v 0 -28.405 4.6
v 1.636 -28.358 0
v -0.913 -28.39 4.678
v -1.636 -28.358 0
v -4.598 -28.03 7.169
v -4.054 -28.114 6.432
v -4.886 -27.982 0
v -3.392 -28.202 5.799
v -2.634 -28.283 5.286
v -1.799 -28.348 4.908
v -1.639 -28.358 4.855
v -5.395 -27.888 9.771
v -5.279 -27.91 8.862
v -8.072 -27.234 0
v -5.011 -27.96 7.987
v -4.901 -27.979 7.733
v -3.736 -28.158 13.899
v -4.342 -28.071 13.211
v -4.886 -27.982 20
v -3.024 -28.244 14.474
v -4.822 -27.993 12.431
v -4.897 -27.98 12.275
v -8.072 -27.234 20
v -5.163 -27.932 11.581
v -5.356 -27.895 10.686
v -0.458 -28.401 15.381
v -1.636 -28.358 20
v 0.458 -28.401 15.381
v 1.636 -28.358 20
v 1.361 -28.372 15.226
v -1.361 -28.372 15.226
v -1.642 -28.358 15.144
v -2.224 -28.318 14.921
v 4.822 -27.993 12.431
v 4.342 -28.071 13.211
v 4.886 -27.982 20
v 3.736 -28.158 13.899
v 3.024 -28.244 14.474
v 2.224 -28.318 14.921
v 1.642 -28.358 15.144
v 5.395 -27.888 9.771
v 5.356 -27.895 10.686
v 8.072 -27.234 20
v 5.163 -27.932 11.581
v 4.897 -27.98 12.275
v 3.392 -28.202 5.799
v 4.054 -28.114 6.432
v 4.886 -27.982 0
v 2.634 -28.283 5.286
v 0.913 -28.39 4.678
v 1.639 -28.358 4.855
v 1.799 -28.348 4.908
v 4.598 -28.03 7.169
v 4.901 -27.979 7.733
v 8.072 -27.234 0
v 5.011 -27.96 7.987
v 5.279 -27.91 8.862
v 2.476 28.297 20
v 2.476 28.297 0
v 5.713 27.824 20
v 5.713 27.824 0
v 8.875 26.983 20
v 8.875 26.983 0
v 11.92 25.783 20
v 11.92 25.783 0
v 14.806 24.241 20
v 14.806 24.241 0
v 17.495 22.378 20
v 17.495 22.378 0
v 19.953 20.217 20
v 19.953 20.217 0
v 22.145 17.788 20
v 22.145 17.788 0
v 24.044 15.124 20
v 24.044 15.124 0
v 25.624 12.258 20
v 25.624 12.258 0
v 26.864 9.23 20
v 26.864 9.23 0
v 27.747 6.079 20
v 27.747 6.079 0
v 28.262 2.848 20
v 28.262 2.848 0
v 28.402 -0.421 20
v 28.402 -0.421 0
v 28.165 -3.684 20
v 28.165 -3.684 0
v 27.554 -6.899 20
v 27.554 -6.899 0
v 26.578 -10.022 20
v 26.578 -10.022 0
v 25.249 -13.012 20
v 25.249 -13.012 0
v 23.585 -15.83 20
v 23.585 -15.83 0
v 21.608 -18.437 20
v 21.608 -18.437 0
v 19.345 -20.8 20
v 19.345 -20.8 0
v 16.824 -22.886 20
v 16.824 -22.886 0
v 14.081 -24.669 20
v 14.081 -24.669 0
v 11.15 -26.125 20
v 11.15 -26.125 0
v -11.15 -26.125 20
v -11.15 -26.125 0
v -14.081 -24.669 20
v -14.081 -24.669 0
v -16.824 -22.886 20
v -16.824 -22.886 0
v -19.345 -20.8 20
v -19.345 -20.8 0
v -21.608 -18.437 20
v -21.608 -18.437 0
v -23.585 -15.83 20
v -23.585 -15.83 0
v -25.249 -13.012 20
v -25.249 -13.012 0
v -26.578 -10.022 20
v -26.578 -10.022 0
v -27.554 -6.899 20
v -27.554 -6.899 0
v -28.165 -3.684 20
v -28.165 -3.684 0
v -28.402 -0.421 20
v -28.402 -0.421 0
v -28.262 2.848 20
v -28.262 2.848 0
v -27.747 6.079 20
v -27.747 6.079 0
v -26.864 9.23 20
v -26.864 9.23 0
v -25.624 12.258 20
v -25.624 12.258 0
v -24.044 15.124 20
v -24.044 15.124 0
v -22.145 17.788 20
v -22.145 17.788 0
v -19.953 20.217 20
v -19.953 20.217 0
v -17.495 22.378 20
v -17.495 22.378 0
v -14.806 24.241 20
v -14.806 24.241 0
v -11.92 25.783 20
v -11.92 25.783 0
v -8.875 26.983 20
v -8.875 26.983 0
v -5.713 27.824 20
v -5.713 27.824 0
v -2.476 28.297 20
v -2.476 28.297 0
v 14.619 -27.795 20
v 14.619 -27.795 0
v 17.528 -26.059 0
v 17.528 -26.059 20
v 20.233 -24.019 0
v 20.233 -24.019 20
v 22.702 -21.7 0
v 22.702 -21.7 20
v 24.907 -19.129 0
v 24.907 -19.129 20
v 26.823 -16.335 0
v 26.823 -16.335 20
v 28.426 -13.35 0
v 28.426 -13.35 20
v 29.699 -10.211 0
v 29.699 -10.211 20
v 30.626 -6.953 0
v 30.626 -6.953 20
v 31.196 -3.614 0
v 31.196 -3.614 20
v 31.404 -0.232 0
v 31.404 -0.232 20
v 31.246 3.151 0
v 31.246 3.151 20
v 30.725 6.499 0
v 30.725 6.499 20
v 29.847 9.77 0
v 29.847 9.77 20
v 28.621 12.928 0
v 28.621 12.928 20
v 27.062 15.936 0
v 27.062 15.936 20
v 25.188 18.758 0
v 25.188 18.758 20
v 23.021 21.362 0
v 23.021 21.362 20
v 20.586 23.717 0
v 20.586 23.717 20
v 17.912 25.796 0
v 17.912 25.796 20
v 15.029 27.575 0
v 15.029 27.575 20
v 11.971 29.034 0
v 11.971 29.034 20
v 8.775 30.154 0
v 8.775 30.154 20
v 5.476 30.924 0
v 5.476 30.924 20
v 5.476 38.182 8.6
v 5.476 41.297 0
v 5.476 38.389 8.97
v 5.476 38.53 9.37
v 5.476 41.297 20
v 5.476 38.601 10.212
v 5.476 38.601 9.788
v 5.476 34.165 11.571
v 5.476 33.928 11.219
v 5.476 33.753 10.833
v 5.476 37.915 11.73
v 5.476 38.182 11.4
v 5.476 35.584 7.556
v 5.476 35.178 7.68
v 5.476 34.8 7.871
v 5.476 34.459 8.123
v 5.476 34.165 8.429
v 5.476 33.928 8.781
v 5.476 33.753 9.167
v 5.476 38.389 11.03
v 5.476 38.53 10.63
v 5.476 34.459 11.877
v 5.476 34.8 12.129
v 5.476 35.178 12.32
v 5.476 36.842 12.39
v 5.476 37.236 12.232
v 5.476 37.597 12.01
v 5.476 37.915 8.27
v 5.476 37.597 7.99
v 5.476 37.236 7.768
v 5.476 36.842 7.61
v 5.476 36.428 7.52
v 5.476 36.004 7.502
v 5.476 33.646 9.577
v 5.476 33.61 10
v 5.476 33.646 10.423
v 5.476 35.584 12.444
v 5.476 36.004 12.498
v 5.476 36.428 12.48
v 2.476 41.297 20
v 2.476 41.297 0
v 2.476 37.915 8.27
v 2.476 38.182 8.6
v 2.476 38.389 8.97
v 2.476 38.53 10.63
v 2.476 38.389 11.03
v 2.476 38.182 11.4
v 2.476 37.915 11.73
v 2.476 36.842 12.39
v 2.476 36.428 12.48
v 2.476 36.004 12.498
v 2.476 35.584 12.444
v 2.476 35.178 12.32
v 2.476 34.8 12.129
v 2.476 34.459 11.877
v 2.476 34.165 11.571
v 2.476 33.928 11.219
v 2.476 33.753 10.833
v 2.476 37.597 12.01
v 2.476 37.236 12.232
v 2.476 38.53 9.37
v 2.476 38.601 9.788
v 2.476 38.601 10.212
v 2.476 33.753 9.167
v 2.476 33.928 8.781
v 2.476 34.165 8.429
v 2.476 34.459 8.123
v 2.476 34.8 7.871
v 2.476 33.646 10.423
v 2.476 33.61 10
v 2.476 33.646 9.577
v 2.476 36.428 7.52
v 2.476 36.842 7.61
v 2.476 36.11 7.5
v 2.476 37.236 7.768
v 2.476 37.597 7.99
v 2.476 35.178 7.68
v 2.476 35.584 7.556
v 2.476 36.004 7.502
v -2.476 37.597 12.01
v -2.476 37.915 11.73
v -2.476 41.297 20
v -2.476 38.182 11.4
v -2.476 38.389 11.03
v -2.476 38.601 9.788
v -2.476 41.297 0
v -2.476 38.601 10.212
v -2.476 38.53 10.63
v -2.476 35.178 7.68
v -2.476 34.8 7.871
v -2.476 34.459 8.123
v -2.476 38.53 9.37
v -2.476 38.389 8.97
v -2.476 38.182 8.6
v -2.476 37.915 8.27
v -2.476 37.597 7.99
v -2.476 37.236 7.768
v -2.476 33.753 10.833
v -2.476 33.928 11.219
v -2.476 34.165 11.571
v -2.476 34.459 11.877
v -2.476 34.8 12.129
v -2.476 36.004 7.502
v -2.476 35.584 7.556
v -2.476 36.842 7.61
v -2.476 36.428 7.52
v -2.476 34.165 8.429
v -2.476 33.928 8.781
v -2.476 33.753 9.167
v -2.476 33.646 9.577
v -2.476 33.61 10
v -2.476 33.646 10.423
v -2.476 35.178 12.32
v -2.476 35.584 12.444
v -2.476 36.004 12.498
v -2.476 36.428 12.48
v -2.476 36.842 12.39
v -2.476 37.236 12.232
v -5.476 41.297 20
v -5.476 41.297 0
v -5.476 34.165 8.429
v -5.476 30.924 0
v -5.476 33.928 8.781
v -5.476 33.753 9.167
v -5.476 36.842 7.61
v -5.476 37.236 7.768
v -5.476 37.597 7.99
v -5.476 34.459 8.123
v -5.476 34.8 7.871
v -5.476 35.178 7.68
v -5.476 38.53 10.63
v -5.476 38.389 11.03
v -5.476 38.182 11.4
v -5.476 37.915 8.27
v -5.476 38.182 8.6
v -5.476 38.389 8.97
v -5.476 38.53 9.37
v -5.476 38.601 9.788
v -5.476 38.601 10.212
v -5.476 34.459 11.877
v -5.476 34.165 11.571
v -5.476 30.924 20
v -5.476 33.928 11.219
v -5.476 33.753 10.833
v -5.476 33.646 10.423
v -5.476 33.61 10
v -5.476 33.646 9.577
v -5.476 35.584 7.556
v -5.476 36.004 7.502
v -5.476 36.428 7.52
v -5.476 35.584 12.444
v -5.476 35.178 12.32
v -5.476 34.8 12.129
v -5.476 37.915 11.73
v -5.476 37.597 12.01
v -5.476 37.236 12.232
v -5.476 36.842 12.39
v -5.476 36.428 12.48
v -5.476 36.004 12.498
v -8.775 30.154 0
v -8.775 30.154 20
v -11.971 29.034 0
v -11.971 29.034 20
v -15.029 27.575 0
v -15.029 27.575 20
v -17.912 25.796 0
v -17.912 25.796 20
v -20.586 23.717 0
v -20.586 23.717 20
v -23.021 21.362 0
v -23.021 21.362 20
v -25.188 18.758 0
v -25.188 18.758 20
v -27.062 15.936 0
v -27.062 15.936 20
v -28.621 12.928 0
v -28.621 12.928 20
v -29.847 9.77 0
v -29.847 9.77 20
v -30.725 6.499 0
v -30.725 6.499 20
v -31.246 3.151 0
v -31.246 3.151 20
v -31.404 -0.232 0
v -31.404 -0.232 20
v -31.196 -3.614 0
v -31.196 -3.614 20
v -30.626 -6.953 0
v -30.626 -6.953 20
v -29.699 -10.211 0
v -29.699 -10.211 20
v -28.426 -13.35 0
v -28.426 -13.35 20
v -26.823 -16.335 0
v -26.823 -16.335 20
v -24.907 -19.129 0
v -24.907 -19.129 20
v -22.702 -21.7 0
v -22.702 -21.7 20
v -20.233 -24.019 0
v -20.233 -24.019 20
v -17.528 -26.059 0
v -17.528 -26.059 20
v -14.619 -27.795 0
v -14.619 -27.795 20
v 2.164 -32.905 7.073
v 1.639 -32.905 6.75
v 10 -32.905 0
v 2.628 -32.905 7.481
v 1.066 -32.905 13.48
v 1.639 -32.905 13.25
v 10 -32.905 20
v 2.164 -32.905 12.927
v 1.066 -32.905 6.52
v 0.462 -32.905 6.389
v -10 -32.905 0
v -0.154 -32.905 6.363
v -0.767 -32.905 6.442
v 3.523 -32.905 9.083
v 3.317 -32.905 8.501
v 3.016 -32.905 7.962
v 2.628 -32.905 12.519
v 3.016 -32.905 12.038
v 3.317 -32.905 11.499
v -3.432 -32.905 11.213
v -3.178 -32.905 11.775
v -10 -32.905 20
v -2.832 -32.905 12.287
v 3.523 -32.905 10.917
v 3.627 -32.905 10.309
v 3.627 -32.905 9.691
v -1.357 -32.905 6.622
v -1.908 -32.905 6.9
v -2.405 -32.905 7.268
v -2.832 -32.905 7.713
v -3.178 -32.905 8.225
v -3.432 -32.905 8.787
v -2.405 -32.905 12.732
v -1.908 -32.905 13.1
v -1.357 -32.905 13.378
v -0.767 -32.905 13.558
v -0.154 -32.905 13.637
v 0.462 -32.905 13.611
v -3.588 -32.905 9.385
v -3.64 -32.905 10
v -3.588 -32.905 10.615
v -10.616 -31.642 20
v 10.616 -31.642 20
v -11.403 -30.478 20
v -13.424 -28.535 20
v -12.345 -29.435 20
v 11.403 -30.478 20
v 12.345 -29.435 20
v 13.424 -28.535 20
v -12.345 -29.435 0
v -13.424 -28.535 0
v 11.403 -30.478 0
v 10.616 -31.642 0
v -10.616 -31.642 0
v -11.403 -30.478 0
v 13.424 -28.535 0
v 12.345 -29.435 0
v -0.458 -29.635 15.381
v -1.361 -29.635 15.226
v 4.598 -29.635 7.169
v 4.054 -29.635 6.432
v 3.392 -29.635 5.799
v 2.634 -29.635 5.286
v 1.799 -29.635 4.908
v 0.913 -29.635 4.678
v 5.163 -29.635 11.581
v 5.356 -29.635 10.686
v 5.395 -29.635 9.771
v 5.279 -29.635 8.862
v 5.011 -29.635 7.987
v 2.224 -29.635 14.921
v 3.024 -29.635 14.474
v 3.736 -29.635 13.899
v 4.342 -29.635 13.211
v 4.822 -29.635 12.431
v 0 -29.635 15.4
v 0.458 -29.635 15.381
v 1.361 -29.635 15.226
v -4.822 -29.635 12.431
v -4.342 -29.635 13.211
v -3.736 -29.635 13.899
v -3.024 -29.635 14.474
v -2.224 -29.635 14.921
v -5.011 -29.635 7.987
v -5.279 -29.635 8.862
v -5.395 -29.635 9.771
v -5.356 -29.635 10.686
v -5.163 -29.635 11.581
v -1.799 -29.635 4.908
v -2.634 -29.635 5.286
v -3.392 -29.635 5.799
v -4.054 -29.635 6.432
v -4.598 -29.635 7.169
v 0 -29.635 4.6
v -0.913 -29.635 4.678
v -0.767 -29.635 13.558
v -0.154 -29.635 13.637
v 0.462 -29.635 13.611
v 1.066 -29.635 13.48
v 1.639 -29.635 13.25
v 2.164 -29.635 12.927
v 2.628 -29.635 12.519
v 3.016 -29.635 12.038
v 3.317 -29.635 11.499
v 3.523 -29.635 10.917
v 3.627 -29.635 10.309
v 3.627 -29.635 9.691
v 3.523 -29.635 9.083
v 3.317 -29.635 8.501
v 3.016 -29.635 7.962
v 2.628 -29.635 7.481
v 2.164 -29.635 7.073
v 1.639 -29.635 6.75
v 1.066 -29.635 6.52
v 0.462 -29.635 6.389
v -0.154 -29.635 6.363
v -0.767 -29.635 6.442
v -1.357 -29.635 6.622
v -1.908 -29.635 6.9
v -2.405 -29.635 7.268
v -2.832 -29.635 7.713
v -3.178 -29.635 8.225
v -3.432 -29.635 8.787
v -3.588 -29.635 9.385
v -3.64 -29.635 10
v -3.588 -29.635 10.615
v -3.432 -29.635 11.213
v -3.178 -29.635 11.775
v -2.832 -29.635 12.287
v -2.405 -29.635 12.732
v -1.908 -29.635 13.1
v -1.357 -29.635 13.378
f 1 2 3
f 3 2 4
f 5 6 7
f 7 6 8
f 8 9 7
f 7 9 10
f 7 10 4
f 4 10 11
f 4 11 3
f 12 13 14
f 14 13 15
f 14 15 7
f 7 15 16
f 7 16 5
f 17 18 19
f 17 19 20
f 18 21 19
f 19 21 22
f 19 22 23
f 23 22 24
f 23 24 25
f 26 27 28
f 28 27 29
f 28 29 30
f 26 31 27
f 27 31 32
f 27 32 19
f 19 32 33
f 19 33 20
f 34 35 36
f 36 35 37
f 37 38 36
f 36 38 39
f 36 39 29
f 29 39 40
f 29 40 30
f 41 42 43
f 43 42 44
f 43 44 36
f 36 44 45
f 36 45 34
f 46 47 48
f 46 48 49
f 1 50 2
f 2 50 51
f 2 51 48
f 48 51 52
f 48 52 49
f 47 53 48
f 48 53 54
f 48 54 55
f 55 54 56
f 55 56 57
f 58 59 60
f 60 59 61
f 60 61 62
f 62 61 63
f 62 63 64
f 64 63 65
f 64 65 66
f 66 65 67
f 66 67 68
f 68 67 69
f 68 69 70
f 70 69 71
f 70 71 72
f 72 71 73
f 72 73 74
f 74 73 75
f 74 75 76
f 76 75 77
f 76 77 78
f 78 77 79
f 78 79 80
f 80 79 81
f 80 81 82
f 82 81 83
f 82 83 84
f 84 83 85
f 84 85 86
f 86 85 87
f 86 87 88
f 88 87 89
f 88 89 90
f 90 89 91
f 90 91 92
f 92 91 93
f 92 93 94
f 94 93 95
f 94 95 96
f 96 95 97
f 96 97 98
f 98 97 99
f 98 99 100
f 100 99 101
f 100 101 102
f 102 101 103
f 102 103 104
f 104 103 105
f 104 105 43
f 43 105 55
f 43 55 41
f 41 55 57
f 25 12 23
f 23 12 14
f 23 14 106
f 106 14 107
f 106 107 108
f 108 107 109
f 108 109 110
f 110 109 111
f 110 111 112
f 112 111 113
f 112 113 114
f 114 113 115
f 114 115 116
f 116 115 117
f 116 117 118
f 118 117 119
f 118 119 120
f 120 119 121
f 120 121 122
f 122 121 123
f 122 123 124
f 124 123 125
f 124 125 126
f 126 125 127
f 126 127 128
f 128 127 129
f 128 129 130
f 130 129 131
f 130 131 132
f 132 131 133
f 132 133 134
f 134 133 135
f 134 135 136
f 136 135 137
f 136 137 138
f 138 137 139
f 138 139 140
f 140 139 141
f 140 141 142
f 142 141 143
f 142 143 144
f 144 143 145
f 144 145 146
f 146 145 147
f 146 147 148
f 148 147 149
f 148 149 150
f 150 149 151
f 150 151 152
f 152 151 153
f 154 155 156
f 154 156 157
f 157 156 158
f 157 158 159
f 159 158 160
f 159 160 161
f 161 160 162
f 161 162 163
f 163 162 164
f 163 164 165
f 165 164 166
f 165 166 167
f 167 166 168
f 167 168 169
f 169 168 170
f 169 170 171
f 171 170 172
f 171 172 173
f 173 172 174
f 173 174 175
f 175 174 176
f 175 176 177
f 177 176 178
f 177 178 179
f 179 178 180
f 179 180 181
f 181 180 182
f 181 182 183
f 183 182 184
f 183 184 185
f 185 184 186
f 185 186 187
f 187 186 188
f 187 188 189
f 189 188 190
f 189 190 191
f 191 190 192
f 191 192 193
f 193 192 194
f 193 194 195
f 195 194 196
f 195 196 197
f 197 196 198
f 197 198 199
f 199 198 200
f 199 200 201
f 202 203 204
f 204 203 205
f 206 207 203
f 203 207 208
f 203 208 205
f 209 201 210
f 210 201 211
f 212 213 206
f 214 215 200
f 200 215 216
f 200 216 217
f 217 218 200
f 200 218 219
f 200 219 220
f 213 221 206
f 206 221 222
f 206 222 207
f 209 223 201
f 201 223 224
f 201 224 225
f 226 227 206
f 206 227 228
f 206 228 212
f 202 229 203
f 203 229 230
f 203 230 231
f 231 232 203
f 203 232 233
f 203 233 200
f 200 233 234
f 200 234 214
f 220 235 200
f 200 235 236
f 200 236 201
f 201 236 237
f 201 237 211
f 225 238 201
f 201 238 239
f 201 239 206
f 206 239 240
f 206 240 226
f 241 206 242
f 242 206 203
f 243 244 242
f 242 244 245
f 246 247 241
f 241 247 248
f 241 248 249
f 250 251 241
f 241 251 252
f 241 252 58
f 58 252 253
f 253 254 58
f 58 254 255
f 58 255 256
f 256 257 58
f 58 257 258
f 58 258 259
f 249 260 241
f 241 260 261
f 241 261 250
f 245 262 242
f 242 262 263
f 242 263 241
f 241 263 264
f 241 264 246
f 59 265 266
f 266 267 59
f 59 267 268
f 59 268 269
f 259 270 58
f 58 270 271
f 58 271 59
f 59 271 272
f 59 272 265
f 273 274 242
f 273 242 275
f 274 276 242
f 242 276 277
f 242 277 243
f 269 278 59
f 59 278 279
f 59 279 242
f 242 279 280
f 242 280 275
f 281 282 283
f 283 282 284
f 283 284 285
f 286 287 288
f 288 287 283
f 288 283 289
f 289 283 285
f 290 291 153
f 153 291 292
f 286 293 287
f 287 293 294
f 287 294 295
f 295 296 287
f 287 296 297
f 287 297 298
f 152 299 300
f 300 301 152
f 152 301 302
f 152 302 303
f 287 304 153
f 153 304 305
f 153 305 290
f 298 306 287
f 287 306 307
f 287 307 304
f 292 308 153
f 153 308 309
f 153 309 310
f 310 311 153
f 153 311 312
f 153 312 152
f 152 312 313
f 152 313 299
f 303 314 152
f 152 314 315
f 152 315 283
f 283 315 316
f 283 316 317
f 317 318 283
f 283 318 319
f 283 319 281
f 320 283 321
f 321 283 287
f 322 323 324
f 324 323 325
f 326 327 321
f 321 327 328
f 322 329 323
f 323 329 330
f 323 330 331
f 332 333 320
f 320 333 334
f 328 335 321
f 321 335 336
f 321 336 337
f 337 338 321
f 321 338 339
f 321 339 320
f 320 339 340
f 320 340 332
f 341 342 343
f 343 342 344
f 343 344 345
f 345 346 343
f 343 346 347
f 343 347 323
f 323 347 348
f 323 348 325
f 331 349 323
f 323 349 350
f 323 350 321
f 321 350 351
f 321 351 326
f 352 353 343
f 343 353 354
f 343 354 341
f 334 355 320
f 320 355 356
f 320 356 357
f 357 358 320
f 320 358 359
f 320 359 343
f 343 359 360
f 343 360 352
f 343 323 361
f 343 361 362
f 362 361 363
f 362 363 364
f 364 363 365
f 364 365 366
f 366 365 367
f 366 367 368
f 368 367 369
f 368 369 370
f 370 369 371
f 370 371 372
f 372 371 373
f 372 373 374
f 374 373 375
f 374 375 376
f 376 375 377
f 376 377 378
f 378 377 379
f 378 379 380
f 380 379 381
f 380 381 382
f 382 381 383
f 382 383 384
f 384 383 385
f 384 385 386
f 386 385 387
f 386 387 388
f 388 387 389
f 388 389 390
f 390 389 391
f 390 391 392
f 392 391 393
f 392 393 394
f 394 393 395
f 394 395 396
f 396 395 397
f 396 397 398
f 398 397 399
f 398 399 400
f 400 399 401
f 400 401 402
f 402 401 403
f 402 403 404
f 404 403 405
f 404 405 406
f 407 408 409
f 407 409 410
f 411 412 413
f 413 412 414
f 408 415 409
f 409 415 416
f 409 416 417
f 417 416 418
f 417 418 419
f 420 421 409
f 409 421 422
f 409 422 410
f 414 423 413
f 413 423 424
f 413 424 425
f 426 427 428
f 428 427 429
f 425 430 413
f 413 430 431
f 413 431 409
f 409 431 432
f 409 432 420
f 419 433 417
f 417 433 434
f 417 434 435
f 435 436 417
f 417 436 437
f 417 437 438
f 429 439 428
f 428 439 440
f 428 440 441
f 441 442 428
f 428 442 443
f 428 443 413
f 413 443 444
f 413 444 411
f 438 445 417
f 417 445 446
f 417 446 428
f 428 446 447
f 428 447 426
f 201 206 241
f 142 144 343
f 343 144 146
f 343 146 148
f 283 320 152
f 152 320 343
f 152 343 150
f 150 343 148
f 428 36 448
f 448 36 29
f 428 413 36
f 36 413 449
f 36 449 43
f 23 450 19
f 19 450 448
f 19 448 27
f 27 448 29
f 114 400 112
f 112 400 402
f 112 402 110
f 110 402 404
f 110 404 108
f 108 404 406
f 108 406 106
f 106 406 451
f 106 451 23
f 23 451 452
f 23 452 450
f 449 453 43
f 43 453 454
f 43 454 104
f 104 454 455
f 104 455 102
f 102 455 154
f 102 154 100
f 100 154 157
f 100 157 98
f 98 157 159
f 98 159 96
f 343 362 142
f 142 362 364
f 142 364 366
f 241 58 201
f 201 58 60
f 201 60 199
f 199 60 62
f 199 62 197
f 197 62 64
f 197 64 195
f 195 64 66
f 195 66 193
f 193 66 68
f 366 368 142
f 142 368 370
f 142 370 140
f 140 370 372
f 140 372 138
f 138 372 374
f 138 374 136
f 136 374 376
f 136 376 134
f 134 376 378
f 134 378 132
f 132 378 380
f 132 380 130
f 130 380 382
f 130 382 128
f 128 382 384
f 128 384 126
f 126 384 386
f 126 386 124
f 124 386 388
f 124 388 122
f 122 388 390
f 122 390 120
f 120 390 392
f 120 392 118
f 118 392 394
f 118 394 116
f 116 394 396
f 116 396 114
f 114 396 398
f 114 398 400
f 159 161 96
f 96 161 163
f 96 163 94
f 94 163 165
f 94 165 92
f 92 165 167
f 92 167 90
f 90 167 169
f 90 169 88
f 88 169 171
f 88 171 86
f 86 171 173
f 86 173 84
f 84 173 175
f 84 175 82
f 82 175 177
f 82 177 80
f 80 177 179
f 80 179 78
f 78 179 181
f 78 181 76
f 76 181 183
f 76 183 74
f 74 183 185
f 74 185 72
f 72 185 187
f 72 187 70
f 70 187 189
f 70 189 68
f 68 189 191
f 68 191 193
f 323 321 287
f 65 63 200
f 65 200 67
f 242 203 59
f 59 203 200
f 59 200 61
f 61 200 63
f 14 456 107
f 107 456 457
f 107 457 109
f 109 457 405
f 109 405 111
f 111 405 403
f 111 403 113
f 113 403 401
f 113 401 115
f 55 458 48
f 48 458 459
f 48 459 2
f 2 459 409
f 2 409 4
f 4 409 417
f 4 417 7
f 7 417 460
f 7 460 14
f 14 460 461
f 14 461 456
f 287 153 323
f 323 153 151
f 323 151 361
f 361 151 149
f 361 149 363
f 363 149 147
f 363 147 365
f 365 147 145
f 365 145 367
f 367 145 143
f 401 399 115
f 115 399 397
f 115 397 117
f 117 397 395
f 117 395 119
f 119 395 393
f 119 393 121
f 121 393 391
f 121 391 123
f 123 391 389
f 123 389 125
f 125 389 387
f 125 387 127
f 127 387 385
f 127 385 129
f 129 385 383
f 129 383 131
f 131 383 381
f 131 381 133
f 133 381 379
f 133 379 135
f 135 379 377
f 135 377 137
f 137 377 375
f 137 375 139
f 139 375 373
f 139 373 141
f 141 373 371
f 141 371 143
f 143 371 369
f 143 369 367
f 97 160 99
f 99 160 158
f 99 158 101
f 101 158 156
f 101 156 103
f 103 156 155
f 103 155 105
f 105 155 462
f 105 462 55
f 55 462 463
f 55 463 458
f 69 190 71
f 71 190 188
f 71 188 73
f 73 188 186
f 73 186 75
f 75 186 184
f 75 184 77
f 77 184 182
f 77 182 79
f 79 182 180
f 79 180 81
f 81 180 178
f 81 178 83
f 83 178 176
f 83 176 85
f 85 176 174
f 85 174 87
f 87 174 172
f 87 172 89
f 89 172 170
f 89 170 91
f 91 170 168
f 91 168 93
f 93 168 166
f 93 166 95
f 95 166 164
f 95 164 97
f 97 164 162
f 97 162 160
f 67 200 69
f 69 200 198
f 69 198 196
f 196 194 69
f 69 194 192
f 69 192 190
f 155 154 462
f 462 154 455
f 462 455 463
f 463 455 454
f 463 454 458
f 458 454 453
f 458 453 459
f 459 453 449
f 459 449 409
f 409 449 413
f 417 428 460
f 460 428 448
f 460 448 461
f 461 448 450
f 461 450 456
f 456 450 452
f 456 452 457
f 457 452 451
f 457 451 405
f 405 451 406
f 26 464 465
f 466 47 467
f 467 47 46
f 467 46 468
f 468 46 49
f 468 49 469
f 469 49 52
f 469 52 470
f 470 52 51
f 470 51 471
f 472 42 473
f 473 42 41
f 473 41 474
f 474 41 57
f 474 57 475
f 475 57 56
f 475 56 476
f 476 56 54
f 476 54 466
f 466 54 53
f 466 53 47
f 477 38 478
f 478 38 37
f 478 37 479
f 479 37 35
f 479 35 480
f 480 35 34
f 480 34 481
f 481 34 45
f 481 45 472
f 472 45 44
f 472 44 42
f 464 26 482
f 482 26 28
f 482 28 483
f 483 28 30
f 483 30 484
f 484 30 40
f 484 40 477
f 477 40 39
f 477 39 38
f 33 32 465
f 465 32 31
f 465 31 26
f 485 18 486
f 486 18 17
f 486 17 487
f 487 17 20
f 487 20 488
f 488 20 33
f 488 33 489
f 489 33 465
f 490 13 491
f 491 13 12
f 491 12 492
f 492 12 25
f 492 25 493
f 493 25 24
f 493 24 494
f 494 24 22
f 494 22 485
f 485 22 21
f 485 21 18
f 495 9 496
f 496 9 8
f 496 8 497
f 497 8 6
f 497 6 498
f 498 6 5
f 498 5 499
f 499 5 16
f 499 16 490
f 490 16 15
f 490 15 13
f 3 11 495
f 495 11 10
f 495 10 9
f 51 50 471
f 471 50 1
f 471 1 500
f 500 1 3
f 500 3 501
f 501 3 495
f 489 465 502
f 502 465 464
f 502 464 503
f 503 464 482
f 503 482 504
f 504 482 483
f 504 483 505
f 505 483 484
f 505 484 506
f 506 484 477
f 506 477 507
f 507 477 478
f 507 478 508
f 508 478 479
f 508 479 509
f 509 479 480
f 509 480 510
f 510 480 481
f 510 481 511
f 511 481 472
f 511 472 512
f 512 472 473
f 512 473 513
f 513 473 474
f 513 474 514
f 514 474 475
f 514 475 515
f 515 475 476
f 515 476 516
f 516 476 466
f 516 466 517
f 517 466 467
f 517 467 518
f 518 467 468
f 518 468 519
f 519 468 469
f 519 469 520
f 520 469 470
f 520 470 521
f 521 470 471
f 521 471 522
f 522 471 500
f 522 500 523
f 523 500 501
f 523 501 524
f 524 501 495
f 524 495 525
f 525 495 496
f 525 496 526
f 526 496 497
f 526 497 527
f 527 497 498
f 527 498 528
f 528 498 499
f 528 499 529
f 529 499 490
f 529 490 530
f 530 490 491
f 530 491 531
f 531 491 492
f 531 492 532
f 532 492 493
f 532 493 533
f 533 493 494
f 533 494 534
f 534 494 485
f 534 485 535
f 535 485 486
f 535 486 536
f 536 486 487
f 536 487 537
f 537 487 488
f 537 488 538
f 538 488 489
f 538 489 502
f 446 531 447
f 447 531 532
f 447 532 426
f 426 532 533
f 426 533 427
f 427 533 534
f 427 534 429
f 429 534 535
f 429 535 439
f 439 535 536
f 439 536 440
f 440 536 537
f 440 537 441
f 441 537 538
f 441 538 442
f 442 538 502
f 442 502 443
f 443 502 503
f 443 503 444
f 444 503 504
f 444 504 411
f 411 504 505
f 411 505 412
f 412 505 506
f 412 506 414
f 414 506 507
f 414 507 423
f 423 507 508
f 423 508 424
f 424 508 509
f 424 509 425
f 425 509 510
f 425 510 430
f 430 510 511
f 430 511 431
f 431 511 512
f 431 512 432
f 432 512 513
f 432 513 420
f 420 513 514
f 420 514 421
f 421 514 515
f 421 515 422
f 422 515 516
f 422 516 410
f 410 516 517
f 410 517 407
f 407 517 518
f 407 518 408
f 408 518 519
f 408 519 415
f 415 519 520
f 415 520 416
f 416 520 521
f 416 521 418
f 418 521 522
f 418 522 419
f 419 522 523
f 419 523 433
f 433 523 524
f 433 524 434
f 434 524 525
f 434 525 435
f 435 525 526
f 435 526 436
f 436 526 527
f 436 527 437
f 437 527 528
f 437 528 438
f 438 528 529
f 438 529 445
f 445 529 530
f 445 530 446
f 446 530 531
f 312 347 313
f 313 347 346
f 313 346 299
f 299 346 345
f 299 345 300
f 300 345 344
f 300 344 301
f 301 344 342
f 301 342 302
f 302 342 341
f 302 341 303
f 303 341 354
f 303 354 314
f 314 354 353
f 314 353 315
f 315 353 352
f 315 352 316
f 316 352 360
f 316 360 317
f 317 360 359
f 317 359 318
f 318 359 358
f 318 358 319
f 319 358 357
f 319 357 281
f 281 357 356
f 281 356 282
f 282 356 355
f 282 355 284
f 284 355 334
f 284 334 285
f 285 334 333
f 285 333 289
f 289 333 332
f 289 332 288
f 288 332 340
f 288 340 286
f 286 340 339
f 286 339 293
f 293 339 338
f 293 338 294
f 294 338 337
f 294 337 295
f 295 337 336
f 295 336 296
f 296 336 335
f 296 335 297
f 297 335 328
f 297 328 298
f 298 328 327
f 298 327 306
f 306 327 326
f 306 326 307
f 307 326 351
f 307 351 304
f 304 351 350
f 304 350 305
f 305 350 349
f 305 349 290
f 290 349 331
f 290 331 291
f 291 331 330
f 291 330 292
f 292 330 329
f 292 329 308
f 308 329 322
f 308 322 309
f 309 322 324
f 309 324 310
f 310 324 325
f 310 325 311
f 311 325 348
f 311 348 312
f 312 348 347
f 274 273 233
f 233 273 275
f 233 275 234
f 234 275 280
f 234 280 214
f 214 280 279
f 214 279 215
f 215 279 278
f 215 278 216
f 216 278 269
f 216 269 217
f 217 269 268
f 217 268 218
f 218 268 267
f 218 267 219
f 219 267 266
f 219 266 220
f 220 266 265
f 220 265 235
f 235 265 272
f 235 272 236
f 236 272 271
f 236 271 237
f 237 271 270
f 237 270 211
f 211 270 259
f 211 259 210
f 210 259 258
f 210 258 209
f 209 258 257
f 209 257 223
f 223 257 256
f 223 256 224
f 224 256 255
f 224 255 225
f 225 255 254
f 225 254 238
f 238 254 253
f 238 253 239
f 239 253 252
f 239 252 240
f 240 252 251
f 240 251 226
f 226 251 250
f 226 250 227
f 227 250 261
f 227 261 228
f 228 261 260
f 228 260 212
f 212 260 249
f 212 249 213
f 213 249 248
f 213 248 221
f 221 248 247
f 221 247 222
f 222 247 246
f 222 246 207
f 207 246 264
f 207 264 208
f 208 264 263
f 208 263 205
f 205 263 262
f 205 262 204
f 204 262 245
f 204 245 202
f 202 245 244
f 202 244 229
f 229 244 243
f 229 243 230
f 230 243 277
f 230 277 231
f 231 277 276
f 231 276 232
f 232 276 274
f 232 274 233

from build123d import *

# Parameters (mm, degrees)
BOSS_EXTRUDE1_DEPTH                 = 20
FILLET1_R                           = 10
SKETCH3_R                           = 5.4
CUT_EXTRUDE3_DEPTH                  = 1.23
CUT_EXTRUDE3_DIRECTION_2_REACH      = 81.023
CUT_EXTRUDE3_DIRECTION_2_END_RADIUS = 28.405
SKETCH4_R                           = 3.64
CUT_EXTRUDE4_DEPTH                  = 81.10998653
SKETCH5_R                           = 2.5
CUT_EXTRUDE5_DEPTH                  = 59.869498141


with BuildPart() as part:
    # Sketch2 → Boss-Extrude1 (new body)
    with BuildSketch(Plane.XY):
        with BuildLine():
            Line((-10, -29.770354801), (-10, -32.905))
            Line((-10, -32.905), (10, -32.905))
            Line((10, -32.905), (10, -29.770354801))
            ThreePointArc((10, -29.770354801), (31.318108327, 2.334548309), (5.475658873, 30.923958105))
            Line((5.475658873, 30.923958105), (5.475658873, 41.296910399))
            Line((5.475658873, 41.296910399), (2.475658873, 41.296910399))
            Line((2.475658873, 41.296910399), (2.475658873, 28.296910399))
            ThreePointArc((2.475658873, 28.296910399), (0, -28.405), (-2.475658873, 28.296910399))
            Line((-2.475658873, 28.296910399), (-2.475658873, 41.296910399))
            Line((-2.475658873, 41.296910399), (-5.475658873, 41.296910399))
            Line((-5.475658873, 41.296910399), (-5.475658873, 30.923958105))
            ThreePointArc((-5.475658873, 30.923958105), (-31.318108327, 2.334548309), (-10, -29.770354801))
        make_face()
    extrude(amount=BOSS_EXTRUDE1_DEPTH)

    # Fillet1
    # the kernel refuses this fillet: 10 mm, written as the material it adds along each edge
    with BuildSketch(Plane(origin=(10, -29.770354801, 0), x_dir=(0, -1, 0), z_dir=(0, 0, 1))) as fillet1_piece_1:
        with BuildLine():
            CenterArc((6.874989117, 9.274148337), FILLET1_R, 207.74277492, 40.292580152)
            Line((-1.975474334, 4.619119153), (-2.152483603, 4.526018569))
            ThreePointArc((-2.152483603, 4.526018569), (-1.079113359, 2.270480411), (-0.189589905, -0.063684127))
            Line((-0.189589905, -0.063684127), (0, -0.2))
            ThreePointArc((0, -0.2), (1.567322599, -0.2), (3.05983832, -0.185482967))
            Line((3.05983832, -0.185482967), (3.134645199, 0))
        make_face()
    extrude(amount=20)
    with BuildSketch(Plane(origin=(-10, -29.770354801, 0), x_dir=(0, -1, 0), z_dir=(0, 0, 1))) as fillet1_piece_2:
        with BuildLine():
            CenterArc((6.874989117, -9.274148337), FILLET1_R, 111.964644928, 40.292580152)
            Line((-1.975474334, -4.619119153), (-2.152483603, -4.526018569))
            ThreePointArc((-2.152483603, -4.526018569), (-1.079113359, -2.270480411), (-0.189589905, 0.063684127))
            Line((-0.189589905, 0.063684127), (0, 0.2))
            ThreePointArc((0, 0.2), (1.567322599, 0.2), (3.05983832, 0.185482967))
            Line((3.05983832, 0.185482967), (3.134645199, 0))
        make_face()
    extrude(amount=20)

    # Sketch3 → Cut-Extrude3 (cut)
    with BuildSketch(Plane(origin=(0, -28.405, 0), x_dir=(1, 0, 0), z_dir=(0, 1, 0))):
        with Locations(Location((0, -10, 0), (0, 0, 90))):
            Circle(SKETCH3_R)
    extrude(amount=-CUT_EXTRUDE3_DEPTH, mode=Mode.SUBTRACT)

    # Cut-Extrude3 direction 2: up to this cylinder (the profile starts outside it)
    cut_extrude3_direction_2_end = Plane(origin=(0, 0, 10), z_dir=(0, 0, -1)) * Cylinder(CUT_EXTRUDE3_DIRECTION_2_END_RADIUS, 219.856, mode=Mode.PRIVATE)
    # Sketch3 → Cut-Extrude3 direction 2 (cut, up to the surface)
    with BuildSketch(Plane(origin=(0, -28.405, 0), x_dir=(1, 0, 0), z_dir=(0, 1, 0)), mode=Mode.PRIVATE) as cut_extrude3_direction_2_sk1:
        with Locations(Location((0, -10, 0), (0, 0, 90))):
            Circle(SKETCH3_R)
    cut_extrude3_direction_2_tool1 = extrude(cut_extrude3_direction_2_sk1.sketch, amount=CUT_EXTRUDE3_DIRECTION_2_REACH, mode=Mode.PRIVATE) - cut_extrude3_direction_2_end
    add(cut_extrude3_direction_2_tool1.solids().sort_by_distance((0, -28.405, 10))[0], mode=Mode.SUBTRACT)
    add(cut_extrude3_direction_2_tool1.solids().sort_by_distance((0, -28.405, 10))[1], mode=Mode.SUBTRACT)

    # Sketch4 → Cut-Extrude4 (cut, through all)
    with BuildSketch(Plane(origin=(0, -29.635, 0), x_dir=(1, 0, 0), z_dir=(0, 1, 0))):
        with Locations(Location((0, -10, 0), (0, 0, 180))):
            Circle(SKETCH4_R)
    extrude(amount=-CUT_EXTRUDE4_DEPTH, mode=Mode.SUBTRACT)

    # Sketch5 → Cut-Extrude5 (cut, through all)
    with BuildSketch(Plane.ZY.offset(5.475658873)):
        with Locations(Location((10, 36.110434252, 0), (0, 0, 270))):
            Circle(SKETCH5_R)
    extrude(amount=-CUT_EXTRUDE5_DEPTH, mode=Mode.SUBTRACT)


solid = part.part
